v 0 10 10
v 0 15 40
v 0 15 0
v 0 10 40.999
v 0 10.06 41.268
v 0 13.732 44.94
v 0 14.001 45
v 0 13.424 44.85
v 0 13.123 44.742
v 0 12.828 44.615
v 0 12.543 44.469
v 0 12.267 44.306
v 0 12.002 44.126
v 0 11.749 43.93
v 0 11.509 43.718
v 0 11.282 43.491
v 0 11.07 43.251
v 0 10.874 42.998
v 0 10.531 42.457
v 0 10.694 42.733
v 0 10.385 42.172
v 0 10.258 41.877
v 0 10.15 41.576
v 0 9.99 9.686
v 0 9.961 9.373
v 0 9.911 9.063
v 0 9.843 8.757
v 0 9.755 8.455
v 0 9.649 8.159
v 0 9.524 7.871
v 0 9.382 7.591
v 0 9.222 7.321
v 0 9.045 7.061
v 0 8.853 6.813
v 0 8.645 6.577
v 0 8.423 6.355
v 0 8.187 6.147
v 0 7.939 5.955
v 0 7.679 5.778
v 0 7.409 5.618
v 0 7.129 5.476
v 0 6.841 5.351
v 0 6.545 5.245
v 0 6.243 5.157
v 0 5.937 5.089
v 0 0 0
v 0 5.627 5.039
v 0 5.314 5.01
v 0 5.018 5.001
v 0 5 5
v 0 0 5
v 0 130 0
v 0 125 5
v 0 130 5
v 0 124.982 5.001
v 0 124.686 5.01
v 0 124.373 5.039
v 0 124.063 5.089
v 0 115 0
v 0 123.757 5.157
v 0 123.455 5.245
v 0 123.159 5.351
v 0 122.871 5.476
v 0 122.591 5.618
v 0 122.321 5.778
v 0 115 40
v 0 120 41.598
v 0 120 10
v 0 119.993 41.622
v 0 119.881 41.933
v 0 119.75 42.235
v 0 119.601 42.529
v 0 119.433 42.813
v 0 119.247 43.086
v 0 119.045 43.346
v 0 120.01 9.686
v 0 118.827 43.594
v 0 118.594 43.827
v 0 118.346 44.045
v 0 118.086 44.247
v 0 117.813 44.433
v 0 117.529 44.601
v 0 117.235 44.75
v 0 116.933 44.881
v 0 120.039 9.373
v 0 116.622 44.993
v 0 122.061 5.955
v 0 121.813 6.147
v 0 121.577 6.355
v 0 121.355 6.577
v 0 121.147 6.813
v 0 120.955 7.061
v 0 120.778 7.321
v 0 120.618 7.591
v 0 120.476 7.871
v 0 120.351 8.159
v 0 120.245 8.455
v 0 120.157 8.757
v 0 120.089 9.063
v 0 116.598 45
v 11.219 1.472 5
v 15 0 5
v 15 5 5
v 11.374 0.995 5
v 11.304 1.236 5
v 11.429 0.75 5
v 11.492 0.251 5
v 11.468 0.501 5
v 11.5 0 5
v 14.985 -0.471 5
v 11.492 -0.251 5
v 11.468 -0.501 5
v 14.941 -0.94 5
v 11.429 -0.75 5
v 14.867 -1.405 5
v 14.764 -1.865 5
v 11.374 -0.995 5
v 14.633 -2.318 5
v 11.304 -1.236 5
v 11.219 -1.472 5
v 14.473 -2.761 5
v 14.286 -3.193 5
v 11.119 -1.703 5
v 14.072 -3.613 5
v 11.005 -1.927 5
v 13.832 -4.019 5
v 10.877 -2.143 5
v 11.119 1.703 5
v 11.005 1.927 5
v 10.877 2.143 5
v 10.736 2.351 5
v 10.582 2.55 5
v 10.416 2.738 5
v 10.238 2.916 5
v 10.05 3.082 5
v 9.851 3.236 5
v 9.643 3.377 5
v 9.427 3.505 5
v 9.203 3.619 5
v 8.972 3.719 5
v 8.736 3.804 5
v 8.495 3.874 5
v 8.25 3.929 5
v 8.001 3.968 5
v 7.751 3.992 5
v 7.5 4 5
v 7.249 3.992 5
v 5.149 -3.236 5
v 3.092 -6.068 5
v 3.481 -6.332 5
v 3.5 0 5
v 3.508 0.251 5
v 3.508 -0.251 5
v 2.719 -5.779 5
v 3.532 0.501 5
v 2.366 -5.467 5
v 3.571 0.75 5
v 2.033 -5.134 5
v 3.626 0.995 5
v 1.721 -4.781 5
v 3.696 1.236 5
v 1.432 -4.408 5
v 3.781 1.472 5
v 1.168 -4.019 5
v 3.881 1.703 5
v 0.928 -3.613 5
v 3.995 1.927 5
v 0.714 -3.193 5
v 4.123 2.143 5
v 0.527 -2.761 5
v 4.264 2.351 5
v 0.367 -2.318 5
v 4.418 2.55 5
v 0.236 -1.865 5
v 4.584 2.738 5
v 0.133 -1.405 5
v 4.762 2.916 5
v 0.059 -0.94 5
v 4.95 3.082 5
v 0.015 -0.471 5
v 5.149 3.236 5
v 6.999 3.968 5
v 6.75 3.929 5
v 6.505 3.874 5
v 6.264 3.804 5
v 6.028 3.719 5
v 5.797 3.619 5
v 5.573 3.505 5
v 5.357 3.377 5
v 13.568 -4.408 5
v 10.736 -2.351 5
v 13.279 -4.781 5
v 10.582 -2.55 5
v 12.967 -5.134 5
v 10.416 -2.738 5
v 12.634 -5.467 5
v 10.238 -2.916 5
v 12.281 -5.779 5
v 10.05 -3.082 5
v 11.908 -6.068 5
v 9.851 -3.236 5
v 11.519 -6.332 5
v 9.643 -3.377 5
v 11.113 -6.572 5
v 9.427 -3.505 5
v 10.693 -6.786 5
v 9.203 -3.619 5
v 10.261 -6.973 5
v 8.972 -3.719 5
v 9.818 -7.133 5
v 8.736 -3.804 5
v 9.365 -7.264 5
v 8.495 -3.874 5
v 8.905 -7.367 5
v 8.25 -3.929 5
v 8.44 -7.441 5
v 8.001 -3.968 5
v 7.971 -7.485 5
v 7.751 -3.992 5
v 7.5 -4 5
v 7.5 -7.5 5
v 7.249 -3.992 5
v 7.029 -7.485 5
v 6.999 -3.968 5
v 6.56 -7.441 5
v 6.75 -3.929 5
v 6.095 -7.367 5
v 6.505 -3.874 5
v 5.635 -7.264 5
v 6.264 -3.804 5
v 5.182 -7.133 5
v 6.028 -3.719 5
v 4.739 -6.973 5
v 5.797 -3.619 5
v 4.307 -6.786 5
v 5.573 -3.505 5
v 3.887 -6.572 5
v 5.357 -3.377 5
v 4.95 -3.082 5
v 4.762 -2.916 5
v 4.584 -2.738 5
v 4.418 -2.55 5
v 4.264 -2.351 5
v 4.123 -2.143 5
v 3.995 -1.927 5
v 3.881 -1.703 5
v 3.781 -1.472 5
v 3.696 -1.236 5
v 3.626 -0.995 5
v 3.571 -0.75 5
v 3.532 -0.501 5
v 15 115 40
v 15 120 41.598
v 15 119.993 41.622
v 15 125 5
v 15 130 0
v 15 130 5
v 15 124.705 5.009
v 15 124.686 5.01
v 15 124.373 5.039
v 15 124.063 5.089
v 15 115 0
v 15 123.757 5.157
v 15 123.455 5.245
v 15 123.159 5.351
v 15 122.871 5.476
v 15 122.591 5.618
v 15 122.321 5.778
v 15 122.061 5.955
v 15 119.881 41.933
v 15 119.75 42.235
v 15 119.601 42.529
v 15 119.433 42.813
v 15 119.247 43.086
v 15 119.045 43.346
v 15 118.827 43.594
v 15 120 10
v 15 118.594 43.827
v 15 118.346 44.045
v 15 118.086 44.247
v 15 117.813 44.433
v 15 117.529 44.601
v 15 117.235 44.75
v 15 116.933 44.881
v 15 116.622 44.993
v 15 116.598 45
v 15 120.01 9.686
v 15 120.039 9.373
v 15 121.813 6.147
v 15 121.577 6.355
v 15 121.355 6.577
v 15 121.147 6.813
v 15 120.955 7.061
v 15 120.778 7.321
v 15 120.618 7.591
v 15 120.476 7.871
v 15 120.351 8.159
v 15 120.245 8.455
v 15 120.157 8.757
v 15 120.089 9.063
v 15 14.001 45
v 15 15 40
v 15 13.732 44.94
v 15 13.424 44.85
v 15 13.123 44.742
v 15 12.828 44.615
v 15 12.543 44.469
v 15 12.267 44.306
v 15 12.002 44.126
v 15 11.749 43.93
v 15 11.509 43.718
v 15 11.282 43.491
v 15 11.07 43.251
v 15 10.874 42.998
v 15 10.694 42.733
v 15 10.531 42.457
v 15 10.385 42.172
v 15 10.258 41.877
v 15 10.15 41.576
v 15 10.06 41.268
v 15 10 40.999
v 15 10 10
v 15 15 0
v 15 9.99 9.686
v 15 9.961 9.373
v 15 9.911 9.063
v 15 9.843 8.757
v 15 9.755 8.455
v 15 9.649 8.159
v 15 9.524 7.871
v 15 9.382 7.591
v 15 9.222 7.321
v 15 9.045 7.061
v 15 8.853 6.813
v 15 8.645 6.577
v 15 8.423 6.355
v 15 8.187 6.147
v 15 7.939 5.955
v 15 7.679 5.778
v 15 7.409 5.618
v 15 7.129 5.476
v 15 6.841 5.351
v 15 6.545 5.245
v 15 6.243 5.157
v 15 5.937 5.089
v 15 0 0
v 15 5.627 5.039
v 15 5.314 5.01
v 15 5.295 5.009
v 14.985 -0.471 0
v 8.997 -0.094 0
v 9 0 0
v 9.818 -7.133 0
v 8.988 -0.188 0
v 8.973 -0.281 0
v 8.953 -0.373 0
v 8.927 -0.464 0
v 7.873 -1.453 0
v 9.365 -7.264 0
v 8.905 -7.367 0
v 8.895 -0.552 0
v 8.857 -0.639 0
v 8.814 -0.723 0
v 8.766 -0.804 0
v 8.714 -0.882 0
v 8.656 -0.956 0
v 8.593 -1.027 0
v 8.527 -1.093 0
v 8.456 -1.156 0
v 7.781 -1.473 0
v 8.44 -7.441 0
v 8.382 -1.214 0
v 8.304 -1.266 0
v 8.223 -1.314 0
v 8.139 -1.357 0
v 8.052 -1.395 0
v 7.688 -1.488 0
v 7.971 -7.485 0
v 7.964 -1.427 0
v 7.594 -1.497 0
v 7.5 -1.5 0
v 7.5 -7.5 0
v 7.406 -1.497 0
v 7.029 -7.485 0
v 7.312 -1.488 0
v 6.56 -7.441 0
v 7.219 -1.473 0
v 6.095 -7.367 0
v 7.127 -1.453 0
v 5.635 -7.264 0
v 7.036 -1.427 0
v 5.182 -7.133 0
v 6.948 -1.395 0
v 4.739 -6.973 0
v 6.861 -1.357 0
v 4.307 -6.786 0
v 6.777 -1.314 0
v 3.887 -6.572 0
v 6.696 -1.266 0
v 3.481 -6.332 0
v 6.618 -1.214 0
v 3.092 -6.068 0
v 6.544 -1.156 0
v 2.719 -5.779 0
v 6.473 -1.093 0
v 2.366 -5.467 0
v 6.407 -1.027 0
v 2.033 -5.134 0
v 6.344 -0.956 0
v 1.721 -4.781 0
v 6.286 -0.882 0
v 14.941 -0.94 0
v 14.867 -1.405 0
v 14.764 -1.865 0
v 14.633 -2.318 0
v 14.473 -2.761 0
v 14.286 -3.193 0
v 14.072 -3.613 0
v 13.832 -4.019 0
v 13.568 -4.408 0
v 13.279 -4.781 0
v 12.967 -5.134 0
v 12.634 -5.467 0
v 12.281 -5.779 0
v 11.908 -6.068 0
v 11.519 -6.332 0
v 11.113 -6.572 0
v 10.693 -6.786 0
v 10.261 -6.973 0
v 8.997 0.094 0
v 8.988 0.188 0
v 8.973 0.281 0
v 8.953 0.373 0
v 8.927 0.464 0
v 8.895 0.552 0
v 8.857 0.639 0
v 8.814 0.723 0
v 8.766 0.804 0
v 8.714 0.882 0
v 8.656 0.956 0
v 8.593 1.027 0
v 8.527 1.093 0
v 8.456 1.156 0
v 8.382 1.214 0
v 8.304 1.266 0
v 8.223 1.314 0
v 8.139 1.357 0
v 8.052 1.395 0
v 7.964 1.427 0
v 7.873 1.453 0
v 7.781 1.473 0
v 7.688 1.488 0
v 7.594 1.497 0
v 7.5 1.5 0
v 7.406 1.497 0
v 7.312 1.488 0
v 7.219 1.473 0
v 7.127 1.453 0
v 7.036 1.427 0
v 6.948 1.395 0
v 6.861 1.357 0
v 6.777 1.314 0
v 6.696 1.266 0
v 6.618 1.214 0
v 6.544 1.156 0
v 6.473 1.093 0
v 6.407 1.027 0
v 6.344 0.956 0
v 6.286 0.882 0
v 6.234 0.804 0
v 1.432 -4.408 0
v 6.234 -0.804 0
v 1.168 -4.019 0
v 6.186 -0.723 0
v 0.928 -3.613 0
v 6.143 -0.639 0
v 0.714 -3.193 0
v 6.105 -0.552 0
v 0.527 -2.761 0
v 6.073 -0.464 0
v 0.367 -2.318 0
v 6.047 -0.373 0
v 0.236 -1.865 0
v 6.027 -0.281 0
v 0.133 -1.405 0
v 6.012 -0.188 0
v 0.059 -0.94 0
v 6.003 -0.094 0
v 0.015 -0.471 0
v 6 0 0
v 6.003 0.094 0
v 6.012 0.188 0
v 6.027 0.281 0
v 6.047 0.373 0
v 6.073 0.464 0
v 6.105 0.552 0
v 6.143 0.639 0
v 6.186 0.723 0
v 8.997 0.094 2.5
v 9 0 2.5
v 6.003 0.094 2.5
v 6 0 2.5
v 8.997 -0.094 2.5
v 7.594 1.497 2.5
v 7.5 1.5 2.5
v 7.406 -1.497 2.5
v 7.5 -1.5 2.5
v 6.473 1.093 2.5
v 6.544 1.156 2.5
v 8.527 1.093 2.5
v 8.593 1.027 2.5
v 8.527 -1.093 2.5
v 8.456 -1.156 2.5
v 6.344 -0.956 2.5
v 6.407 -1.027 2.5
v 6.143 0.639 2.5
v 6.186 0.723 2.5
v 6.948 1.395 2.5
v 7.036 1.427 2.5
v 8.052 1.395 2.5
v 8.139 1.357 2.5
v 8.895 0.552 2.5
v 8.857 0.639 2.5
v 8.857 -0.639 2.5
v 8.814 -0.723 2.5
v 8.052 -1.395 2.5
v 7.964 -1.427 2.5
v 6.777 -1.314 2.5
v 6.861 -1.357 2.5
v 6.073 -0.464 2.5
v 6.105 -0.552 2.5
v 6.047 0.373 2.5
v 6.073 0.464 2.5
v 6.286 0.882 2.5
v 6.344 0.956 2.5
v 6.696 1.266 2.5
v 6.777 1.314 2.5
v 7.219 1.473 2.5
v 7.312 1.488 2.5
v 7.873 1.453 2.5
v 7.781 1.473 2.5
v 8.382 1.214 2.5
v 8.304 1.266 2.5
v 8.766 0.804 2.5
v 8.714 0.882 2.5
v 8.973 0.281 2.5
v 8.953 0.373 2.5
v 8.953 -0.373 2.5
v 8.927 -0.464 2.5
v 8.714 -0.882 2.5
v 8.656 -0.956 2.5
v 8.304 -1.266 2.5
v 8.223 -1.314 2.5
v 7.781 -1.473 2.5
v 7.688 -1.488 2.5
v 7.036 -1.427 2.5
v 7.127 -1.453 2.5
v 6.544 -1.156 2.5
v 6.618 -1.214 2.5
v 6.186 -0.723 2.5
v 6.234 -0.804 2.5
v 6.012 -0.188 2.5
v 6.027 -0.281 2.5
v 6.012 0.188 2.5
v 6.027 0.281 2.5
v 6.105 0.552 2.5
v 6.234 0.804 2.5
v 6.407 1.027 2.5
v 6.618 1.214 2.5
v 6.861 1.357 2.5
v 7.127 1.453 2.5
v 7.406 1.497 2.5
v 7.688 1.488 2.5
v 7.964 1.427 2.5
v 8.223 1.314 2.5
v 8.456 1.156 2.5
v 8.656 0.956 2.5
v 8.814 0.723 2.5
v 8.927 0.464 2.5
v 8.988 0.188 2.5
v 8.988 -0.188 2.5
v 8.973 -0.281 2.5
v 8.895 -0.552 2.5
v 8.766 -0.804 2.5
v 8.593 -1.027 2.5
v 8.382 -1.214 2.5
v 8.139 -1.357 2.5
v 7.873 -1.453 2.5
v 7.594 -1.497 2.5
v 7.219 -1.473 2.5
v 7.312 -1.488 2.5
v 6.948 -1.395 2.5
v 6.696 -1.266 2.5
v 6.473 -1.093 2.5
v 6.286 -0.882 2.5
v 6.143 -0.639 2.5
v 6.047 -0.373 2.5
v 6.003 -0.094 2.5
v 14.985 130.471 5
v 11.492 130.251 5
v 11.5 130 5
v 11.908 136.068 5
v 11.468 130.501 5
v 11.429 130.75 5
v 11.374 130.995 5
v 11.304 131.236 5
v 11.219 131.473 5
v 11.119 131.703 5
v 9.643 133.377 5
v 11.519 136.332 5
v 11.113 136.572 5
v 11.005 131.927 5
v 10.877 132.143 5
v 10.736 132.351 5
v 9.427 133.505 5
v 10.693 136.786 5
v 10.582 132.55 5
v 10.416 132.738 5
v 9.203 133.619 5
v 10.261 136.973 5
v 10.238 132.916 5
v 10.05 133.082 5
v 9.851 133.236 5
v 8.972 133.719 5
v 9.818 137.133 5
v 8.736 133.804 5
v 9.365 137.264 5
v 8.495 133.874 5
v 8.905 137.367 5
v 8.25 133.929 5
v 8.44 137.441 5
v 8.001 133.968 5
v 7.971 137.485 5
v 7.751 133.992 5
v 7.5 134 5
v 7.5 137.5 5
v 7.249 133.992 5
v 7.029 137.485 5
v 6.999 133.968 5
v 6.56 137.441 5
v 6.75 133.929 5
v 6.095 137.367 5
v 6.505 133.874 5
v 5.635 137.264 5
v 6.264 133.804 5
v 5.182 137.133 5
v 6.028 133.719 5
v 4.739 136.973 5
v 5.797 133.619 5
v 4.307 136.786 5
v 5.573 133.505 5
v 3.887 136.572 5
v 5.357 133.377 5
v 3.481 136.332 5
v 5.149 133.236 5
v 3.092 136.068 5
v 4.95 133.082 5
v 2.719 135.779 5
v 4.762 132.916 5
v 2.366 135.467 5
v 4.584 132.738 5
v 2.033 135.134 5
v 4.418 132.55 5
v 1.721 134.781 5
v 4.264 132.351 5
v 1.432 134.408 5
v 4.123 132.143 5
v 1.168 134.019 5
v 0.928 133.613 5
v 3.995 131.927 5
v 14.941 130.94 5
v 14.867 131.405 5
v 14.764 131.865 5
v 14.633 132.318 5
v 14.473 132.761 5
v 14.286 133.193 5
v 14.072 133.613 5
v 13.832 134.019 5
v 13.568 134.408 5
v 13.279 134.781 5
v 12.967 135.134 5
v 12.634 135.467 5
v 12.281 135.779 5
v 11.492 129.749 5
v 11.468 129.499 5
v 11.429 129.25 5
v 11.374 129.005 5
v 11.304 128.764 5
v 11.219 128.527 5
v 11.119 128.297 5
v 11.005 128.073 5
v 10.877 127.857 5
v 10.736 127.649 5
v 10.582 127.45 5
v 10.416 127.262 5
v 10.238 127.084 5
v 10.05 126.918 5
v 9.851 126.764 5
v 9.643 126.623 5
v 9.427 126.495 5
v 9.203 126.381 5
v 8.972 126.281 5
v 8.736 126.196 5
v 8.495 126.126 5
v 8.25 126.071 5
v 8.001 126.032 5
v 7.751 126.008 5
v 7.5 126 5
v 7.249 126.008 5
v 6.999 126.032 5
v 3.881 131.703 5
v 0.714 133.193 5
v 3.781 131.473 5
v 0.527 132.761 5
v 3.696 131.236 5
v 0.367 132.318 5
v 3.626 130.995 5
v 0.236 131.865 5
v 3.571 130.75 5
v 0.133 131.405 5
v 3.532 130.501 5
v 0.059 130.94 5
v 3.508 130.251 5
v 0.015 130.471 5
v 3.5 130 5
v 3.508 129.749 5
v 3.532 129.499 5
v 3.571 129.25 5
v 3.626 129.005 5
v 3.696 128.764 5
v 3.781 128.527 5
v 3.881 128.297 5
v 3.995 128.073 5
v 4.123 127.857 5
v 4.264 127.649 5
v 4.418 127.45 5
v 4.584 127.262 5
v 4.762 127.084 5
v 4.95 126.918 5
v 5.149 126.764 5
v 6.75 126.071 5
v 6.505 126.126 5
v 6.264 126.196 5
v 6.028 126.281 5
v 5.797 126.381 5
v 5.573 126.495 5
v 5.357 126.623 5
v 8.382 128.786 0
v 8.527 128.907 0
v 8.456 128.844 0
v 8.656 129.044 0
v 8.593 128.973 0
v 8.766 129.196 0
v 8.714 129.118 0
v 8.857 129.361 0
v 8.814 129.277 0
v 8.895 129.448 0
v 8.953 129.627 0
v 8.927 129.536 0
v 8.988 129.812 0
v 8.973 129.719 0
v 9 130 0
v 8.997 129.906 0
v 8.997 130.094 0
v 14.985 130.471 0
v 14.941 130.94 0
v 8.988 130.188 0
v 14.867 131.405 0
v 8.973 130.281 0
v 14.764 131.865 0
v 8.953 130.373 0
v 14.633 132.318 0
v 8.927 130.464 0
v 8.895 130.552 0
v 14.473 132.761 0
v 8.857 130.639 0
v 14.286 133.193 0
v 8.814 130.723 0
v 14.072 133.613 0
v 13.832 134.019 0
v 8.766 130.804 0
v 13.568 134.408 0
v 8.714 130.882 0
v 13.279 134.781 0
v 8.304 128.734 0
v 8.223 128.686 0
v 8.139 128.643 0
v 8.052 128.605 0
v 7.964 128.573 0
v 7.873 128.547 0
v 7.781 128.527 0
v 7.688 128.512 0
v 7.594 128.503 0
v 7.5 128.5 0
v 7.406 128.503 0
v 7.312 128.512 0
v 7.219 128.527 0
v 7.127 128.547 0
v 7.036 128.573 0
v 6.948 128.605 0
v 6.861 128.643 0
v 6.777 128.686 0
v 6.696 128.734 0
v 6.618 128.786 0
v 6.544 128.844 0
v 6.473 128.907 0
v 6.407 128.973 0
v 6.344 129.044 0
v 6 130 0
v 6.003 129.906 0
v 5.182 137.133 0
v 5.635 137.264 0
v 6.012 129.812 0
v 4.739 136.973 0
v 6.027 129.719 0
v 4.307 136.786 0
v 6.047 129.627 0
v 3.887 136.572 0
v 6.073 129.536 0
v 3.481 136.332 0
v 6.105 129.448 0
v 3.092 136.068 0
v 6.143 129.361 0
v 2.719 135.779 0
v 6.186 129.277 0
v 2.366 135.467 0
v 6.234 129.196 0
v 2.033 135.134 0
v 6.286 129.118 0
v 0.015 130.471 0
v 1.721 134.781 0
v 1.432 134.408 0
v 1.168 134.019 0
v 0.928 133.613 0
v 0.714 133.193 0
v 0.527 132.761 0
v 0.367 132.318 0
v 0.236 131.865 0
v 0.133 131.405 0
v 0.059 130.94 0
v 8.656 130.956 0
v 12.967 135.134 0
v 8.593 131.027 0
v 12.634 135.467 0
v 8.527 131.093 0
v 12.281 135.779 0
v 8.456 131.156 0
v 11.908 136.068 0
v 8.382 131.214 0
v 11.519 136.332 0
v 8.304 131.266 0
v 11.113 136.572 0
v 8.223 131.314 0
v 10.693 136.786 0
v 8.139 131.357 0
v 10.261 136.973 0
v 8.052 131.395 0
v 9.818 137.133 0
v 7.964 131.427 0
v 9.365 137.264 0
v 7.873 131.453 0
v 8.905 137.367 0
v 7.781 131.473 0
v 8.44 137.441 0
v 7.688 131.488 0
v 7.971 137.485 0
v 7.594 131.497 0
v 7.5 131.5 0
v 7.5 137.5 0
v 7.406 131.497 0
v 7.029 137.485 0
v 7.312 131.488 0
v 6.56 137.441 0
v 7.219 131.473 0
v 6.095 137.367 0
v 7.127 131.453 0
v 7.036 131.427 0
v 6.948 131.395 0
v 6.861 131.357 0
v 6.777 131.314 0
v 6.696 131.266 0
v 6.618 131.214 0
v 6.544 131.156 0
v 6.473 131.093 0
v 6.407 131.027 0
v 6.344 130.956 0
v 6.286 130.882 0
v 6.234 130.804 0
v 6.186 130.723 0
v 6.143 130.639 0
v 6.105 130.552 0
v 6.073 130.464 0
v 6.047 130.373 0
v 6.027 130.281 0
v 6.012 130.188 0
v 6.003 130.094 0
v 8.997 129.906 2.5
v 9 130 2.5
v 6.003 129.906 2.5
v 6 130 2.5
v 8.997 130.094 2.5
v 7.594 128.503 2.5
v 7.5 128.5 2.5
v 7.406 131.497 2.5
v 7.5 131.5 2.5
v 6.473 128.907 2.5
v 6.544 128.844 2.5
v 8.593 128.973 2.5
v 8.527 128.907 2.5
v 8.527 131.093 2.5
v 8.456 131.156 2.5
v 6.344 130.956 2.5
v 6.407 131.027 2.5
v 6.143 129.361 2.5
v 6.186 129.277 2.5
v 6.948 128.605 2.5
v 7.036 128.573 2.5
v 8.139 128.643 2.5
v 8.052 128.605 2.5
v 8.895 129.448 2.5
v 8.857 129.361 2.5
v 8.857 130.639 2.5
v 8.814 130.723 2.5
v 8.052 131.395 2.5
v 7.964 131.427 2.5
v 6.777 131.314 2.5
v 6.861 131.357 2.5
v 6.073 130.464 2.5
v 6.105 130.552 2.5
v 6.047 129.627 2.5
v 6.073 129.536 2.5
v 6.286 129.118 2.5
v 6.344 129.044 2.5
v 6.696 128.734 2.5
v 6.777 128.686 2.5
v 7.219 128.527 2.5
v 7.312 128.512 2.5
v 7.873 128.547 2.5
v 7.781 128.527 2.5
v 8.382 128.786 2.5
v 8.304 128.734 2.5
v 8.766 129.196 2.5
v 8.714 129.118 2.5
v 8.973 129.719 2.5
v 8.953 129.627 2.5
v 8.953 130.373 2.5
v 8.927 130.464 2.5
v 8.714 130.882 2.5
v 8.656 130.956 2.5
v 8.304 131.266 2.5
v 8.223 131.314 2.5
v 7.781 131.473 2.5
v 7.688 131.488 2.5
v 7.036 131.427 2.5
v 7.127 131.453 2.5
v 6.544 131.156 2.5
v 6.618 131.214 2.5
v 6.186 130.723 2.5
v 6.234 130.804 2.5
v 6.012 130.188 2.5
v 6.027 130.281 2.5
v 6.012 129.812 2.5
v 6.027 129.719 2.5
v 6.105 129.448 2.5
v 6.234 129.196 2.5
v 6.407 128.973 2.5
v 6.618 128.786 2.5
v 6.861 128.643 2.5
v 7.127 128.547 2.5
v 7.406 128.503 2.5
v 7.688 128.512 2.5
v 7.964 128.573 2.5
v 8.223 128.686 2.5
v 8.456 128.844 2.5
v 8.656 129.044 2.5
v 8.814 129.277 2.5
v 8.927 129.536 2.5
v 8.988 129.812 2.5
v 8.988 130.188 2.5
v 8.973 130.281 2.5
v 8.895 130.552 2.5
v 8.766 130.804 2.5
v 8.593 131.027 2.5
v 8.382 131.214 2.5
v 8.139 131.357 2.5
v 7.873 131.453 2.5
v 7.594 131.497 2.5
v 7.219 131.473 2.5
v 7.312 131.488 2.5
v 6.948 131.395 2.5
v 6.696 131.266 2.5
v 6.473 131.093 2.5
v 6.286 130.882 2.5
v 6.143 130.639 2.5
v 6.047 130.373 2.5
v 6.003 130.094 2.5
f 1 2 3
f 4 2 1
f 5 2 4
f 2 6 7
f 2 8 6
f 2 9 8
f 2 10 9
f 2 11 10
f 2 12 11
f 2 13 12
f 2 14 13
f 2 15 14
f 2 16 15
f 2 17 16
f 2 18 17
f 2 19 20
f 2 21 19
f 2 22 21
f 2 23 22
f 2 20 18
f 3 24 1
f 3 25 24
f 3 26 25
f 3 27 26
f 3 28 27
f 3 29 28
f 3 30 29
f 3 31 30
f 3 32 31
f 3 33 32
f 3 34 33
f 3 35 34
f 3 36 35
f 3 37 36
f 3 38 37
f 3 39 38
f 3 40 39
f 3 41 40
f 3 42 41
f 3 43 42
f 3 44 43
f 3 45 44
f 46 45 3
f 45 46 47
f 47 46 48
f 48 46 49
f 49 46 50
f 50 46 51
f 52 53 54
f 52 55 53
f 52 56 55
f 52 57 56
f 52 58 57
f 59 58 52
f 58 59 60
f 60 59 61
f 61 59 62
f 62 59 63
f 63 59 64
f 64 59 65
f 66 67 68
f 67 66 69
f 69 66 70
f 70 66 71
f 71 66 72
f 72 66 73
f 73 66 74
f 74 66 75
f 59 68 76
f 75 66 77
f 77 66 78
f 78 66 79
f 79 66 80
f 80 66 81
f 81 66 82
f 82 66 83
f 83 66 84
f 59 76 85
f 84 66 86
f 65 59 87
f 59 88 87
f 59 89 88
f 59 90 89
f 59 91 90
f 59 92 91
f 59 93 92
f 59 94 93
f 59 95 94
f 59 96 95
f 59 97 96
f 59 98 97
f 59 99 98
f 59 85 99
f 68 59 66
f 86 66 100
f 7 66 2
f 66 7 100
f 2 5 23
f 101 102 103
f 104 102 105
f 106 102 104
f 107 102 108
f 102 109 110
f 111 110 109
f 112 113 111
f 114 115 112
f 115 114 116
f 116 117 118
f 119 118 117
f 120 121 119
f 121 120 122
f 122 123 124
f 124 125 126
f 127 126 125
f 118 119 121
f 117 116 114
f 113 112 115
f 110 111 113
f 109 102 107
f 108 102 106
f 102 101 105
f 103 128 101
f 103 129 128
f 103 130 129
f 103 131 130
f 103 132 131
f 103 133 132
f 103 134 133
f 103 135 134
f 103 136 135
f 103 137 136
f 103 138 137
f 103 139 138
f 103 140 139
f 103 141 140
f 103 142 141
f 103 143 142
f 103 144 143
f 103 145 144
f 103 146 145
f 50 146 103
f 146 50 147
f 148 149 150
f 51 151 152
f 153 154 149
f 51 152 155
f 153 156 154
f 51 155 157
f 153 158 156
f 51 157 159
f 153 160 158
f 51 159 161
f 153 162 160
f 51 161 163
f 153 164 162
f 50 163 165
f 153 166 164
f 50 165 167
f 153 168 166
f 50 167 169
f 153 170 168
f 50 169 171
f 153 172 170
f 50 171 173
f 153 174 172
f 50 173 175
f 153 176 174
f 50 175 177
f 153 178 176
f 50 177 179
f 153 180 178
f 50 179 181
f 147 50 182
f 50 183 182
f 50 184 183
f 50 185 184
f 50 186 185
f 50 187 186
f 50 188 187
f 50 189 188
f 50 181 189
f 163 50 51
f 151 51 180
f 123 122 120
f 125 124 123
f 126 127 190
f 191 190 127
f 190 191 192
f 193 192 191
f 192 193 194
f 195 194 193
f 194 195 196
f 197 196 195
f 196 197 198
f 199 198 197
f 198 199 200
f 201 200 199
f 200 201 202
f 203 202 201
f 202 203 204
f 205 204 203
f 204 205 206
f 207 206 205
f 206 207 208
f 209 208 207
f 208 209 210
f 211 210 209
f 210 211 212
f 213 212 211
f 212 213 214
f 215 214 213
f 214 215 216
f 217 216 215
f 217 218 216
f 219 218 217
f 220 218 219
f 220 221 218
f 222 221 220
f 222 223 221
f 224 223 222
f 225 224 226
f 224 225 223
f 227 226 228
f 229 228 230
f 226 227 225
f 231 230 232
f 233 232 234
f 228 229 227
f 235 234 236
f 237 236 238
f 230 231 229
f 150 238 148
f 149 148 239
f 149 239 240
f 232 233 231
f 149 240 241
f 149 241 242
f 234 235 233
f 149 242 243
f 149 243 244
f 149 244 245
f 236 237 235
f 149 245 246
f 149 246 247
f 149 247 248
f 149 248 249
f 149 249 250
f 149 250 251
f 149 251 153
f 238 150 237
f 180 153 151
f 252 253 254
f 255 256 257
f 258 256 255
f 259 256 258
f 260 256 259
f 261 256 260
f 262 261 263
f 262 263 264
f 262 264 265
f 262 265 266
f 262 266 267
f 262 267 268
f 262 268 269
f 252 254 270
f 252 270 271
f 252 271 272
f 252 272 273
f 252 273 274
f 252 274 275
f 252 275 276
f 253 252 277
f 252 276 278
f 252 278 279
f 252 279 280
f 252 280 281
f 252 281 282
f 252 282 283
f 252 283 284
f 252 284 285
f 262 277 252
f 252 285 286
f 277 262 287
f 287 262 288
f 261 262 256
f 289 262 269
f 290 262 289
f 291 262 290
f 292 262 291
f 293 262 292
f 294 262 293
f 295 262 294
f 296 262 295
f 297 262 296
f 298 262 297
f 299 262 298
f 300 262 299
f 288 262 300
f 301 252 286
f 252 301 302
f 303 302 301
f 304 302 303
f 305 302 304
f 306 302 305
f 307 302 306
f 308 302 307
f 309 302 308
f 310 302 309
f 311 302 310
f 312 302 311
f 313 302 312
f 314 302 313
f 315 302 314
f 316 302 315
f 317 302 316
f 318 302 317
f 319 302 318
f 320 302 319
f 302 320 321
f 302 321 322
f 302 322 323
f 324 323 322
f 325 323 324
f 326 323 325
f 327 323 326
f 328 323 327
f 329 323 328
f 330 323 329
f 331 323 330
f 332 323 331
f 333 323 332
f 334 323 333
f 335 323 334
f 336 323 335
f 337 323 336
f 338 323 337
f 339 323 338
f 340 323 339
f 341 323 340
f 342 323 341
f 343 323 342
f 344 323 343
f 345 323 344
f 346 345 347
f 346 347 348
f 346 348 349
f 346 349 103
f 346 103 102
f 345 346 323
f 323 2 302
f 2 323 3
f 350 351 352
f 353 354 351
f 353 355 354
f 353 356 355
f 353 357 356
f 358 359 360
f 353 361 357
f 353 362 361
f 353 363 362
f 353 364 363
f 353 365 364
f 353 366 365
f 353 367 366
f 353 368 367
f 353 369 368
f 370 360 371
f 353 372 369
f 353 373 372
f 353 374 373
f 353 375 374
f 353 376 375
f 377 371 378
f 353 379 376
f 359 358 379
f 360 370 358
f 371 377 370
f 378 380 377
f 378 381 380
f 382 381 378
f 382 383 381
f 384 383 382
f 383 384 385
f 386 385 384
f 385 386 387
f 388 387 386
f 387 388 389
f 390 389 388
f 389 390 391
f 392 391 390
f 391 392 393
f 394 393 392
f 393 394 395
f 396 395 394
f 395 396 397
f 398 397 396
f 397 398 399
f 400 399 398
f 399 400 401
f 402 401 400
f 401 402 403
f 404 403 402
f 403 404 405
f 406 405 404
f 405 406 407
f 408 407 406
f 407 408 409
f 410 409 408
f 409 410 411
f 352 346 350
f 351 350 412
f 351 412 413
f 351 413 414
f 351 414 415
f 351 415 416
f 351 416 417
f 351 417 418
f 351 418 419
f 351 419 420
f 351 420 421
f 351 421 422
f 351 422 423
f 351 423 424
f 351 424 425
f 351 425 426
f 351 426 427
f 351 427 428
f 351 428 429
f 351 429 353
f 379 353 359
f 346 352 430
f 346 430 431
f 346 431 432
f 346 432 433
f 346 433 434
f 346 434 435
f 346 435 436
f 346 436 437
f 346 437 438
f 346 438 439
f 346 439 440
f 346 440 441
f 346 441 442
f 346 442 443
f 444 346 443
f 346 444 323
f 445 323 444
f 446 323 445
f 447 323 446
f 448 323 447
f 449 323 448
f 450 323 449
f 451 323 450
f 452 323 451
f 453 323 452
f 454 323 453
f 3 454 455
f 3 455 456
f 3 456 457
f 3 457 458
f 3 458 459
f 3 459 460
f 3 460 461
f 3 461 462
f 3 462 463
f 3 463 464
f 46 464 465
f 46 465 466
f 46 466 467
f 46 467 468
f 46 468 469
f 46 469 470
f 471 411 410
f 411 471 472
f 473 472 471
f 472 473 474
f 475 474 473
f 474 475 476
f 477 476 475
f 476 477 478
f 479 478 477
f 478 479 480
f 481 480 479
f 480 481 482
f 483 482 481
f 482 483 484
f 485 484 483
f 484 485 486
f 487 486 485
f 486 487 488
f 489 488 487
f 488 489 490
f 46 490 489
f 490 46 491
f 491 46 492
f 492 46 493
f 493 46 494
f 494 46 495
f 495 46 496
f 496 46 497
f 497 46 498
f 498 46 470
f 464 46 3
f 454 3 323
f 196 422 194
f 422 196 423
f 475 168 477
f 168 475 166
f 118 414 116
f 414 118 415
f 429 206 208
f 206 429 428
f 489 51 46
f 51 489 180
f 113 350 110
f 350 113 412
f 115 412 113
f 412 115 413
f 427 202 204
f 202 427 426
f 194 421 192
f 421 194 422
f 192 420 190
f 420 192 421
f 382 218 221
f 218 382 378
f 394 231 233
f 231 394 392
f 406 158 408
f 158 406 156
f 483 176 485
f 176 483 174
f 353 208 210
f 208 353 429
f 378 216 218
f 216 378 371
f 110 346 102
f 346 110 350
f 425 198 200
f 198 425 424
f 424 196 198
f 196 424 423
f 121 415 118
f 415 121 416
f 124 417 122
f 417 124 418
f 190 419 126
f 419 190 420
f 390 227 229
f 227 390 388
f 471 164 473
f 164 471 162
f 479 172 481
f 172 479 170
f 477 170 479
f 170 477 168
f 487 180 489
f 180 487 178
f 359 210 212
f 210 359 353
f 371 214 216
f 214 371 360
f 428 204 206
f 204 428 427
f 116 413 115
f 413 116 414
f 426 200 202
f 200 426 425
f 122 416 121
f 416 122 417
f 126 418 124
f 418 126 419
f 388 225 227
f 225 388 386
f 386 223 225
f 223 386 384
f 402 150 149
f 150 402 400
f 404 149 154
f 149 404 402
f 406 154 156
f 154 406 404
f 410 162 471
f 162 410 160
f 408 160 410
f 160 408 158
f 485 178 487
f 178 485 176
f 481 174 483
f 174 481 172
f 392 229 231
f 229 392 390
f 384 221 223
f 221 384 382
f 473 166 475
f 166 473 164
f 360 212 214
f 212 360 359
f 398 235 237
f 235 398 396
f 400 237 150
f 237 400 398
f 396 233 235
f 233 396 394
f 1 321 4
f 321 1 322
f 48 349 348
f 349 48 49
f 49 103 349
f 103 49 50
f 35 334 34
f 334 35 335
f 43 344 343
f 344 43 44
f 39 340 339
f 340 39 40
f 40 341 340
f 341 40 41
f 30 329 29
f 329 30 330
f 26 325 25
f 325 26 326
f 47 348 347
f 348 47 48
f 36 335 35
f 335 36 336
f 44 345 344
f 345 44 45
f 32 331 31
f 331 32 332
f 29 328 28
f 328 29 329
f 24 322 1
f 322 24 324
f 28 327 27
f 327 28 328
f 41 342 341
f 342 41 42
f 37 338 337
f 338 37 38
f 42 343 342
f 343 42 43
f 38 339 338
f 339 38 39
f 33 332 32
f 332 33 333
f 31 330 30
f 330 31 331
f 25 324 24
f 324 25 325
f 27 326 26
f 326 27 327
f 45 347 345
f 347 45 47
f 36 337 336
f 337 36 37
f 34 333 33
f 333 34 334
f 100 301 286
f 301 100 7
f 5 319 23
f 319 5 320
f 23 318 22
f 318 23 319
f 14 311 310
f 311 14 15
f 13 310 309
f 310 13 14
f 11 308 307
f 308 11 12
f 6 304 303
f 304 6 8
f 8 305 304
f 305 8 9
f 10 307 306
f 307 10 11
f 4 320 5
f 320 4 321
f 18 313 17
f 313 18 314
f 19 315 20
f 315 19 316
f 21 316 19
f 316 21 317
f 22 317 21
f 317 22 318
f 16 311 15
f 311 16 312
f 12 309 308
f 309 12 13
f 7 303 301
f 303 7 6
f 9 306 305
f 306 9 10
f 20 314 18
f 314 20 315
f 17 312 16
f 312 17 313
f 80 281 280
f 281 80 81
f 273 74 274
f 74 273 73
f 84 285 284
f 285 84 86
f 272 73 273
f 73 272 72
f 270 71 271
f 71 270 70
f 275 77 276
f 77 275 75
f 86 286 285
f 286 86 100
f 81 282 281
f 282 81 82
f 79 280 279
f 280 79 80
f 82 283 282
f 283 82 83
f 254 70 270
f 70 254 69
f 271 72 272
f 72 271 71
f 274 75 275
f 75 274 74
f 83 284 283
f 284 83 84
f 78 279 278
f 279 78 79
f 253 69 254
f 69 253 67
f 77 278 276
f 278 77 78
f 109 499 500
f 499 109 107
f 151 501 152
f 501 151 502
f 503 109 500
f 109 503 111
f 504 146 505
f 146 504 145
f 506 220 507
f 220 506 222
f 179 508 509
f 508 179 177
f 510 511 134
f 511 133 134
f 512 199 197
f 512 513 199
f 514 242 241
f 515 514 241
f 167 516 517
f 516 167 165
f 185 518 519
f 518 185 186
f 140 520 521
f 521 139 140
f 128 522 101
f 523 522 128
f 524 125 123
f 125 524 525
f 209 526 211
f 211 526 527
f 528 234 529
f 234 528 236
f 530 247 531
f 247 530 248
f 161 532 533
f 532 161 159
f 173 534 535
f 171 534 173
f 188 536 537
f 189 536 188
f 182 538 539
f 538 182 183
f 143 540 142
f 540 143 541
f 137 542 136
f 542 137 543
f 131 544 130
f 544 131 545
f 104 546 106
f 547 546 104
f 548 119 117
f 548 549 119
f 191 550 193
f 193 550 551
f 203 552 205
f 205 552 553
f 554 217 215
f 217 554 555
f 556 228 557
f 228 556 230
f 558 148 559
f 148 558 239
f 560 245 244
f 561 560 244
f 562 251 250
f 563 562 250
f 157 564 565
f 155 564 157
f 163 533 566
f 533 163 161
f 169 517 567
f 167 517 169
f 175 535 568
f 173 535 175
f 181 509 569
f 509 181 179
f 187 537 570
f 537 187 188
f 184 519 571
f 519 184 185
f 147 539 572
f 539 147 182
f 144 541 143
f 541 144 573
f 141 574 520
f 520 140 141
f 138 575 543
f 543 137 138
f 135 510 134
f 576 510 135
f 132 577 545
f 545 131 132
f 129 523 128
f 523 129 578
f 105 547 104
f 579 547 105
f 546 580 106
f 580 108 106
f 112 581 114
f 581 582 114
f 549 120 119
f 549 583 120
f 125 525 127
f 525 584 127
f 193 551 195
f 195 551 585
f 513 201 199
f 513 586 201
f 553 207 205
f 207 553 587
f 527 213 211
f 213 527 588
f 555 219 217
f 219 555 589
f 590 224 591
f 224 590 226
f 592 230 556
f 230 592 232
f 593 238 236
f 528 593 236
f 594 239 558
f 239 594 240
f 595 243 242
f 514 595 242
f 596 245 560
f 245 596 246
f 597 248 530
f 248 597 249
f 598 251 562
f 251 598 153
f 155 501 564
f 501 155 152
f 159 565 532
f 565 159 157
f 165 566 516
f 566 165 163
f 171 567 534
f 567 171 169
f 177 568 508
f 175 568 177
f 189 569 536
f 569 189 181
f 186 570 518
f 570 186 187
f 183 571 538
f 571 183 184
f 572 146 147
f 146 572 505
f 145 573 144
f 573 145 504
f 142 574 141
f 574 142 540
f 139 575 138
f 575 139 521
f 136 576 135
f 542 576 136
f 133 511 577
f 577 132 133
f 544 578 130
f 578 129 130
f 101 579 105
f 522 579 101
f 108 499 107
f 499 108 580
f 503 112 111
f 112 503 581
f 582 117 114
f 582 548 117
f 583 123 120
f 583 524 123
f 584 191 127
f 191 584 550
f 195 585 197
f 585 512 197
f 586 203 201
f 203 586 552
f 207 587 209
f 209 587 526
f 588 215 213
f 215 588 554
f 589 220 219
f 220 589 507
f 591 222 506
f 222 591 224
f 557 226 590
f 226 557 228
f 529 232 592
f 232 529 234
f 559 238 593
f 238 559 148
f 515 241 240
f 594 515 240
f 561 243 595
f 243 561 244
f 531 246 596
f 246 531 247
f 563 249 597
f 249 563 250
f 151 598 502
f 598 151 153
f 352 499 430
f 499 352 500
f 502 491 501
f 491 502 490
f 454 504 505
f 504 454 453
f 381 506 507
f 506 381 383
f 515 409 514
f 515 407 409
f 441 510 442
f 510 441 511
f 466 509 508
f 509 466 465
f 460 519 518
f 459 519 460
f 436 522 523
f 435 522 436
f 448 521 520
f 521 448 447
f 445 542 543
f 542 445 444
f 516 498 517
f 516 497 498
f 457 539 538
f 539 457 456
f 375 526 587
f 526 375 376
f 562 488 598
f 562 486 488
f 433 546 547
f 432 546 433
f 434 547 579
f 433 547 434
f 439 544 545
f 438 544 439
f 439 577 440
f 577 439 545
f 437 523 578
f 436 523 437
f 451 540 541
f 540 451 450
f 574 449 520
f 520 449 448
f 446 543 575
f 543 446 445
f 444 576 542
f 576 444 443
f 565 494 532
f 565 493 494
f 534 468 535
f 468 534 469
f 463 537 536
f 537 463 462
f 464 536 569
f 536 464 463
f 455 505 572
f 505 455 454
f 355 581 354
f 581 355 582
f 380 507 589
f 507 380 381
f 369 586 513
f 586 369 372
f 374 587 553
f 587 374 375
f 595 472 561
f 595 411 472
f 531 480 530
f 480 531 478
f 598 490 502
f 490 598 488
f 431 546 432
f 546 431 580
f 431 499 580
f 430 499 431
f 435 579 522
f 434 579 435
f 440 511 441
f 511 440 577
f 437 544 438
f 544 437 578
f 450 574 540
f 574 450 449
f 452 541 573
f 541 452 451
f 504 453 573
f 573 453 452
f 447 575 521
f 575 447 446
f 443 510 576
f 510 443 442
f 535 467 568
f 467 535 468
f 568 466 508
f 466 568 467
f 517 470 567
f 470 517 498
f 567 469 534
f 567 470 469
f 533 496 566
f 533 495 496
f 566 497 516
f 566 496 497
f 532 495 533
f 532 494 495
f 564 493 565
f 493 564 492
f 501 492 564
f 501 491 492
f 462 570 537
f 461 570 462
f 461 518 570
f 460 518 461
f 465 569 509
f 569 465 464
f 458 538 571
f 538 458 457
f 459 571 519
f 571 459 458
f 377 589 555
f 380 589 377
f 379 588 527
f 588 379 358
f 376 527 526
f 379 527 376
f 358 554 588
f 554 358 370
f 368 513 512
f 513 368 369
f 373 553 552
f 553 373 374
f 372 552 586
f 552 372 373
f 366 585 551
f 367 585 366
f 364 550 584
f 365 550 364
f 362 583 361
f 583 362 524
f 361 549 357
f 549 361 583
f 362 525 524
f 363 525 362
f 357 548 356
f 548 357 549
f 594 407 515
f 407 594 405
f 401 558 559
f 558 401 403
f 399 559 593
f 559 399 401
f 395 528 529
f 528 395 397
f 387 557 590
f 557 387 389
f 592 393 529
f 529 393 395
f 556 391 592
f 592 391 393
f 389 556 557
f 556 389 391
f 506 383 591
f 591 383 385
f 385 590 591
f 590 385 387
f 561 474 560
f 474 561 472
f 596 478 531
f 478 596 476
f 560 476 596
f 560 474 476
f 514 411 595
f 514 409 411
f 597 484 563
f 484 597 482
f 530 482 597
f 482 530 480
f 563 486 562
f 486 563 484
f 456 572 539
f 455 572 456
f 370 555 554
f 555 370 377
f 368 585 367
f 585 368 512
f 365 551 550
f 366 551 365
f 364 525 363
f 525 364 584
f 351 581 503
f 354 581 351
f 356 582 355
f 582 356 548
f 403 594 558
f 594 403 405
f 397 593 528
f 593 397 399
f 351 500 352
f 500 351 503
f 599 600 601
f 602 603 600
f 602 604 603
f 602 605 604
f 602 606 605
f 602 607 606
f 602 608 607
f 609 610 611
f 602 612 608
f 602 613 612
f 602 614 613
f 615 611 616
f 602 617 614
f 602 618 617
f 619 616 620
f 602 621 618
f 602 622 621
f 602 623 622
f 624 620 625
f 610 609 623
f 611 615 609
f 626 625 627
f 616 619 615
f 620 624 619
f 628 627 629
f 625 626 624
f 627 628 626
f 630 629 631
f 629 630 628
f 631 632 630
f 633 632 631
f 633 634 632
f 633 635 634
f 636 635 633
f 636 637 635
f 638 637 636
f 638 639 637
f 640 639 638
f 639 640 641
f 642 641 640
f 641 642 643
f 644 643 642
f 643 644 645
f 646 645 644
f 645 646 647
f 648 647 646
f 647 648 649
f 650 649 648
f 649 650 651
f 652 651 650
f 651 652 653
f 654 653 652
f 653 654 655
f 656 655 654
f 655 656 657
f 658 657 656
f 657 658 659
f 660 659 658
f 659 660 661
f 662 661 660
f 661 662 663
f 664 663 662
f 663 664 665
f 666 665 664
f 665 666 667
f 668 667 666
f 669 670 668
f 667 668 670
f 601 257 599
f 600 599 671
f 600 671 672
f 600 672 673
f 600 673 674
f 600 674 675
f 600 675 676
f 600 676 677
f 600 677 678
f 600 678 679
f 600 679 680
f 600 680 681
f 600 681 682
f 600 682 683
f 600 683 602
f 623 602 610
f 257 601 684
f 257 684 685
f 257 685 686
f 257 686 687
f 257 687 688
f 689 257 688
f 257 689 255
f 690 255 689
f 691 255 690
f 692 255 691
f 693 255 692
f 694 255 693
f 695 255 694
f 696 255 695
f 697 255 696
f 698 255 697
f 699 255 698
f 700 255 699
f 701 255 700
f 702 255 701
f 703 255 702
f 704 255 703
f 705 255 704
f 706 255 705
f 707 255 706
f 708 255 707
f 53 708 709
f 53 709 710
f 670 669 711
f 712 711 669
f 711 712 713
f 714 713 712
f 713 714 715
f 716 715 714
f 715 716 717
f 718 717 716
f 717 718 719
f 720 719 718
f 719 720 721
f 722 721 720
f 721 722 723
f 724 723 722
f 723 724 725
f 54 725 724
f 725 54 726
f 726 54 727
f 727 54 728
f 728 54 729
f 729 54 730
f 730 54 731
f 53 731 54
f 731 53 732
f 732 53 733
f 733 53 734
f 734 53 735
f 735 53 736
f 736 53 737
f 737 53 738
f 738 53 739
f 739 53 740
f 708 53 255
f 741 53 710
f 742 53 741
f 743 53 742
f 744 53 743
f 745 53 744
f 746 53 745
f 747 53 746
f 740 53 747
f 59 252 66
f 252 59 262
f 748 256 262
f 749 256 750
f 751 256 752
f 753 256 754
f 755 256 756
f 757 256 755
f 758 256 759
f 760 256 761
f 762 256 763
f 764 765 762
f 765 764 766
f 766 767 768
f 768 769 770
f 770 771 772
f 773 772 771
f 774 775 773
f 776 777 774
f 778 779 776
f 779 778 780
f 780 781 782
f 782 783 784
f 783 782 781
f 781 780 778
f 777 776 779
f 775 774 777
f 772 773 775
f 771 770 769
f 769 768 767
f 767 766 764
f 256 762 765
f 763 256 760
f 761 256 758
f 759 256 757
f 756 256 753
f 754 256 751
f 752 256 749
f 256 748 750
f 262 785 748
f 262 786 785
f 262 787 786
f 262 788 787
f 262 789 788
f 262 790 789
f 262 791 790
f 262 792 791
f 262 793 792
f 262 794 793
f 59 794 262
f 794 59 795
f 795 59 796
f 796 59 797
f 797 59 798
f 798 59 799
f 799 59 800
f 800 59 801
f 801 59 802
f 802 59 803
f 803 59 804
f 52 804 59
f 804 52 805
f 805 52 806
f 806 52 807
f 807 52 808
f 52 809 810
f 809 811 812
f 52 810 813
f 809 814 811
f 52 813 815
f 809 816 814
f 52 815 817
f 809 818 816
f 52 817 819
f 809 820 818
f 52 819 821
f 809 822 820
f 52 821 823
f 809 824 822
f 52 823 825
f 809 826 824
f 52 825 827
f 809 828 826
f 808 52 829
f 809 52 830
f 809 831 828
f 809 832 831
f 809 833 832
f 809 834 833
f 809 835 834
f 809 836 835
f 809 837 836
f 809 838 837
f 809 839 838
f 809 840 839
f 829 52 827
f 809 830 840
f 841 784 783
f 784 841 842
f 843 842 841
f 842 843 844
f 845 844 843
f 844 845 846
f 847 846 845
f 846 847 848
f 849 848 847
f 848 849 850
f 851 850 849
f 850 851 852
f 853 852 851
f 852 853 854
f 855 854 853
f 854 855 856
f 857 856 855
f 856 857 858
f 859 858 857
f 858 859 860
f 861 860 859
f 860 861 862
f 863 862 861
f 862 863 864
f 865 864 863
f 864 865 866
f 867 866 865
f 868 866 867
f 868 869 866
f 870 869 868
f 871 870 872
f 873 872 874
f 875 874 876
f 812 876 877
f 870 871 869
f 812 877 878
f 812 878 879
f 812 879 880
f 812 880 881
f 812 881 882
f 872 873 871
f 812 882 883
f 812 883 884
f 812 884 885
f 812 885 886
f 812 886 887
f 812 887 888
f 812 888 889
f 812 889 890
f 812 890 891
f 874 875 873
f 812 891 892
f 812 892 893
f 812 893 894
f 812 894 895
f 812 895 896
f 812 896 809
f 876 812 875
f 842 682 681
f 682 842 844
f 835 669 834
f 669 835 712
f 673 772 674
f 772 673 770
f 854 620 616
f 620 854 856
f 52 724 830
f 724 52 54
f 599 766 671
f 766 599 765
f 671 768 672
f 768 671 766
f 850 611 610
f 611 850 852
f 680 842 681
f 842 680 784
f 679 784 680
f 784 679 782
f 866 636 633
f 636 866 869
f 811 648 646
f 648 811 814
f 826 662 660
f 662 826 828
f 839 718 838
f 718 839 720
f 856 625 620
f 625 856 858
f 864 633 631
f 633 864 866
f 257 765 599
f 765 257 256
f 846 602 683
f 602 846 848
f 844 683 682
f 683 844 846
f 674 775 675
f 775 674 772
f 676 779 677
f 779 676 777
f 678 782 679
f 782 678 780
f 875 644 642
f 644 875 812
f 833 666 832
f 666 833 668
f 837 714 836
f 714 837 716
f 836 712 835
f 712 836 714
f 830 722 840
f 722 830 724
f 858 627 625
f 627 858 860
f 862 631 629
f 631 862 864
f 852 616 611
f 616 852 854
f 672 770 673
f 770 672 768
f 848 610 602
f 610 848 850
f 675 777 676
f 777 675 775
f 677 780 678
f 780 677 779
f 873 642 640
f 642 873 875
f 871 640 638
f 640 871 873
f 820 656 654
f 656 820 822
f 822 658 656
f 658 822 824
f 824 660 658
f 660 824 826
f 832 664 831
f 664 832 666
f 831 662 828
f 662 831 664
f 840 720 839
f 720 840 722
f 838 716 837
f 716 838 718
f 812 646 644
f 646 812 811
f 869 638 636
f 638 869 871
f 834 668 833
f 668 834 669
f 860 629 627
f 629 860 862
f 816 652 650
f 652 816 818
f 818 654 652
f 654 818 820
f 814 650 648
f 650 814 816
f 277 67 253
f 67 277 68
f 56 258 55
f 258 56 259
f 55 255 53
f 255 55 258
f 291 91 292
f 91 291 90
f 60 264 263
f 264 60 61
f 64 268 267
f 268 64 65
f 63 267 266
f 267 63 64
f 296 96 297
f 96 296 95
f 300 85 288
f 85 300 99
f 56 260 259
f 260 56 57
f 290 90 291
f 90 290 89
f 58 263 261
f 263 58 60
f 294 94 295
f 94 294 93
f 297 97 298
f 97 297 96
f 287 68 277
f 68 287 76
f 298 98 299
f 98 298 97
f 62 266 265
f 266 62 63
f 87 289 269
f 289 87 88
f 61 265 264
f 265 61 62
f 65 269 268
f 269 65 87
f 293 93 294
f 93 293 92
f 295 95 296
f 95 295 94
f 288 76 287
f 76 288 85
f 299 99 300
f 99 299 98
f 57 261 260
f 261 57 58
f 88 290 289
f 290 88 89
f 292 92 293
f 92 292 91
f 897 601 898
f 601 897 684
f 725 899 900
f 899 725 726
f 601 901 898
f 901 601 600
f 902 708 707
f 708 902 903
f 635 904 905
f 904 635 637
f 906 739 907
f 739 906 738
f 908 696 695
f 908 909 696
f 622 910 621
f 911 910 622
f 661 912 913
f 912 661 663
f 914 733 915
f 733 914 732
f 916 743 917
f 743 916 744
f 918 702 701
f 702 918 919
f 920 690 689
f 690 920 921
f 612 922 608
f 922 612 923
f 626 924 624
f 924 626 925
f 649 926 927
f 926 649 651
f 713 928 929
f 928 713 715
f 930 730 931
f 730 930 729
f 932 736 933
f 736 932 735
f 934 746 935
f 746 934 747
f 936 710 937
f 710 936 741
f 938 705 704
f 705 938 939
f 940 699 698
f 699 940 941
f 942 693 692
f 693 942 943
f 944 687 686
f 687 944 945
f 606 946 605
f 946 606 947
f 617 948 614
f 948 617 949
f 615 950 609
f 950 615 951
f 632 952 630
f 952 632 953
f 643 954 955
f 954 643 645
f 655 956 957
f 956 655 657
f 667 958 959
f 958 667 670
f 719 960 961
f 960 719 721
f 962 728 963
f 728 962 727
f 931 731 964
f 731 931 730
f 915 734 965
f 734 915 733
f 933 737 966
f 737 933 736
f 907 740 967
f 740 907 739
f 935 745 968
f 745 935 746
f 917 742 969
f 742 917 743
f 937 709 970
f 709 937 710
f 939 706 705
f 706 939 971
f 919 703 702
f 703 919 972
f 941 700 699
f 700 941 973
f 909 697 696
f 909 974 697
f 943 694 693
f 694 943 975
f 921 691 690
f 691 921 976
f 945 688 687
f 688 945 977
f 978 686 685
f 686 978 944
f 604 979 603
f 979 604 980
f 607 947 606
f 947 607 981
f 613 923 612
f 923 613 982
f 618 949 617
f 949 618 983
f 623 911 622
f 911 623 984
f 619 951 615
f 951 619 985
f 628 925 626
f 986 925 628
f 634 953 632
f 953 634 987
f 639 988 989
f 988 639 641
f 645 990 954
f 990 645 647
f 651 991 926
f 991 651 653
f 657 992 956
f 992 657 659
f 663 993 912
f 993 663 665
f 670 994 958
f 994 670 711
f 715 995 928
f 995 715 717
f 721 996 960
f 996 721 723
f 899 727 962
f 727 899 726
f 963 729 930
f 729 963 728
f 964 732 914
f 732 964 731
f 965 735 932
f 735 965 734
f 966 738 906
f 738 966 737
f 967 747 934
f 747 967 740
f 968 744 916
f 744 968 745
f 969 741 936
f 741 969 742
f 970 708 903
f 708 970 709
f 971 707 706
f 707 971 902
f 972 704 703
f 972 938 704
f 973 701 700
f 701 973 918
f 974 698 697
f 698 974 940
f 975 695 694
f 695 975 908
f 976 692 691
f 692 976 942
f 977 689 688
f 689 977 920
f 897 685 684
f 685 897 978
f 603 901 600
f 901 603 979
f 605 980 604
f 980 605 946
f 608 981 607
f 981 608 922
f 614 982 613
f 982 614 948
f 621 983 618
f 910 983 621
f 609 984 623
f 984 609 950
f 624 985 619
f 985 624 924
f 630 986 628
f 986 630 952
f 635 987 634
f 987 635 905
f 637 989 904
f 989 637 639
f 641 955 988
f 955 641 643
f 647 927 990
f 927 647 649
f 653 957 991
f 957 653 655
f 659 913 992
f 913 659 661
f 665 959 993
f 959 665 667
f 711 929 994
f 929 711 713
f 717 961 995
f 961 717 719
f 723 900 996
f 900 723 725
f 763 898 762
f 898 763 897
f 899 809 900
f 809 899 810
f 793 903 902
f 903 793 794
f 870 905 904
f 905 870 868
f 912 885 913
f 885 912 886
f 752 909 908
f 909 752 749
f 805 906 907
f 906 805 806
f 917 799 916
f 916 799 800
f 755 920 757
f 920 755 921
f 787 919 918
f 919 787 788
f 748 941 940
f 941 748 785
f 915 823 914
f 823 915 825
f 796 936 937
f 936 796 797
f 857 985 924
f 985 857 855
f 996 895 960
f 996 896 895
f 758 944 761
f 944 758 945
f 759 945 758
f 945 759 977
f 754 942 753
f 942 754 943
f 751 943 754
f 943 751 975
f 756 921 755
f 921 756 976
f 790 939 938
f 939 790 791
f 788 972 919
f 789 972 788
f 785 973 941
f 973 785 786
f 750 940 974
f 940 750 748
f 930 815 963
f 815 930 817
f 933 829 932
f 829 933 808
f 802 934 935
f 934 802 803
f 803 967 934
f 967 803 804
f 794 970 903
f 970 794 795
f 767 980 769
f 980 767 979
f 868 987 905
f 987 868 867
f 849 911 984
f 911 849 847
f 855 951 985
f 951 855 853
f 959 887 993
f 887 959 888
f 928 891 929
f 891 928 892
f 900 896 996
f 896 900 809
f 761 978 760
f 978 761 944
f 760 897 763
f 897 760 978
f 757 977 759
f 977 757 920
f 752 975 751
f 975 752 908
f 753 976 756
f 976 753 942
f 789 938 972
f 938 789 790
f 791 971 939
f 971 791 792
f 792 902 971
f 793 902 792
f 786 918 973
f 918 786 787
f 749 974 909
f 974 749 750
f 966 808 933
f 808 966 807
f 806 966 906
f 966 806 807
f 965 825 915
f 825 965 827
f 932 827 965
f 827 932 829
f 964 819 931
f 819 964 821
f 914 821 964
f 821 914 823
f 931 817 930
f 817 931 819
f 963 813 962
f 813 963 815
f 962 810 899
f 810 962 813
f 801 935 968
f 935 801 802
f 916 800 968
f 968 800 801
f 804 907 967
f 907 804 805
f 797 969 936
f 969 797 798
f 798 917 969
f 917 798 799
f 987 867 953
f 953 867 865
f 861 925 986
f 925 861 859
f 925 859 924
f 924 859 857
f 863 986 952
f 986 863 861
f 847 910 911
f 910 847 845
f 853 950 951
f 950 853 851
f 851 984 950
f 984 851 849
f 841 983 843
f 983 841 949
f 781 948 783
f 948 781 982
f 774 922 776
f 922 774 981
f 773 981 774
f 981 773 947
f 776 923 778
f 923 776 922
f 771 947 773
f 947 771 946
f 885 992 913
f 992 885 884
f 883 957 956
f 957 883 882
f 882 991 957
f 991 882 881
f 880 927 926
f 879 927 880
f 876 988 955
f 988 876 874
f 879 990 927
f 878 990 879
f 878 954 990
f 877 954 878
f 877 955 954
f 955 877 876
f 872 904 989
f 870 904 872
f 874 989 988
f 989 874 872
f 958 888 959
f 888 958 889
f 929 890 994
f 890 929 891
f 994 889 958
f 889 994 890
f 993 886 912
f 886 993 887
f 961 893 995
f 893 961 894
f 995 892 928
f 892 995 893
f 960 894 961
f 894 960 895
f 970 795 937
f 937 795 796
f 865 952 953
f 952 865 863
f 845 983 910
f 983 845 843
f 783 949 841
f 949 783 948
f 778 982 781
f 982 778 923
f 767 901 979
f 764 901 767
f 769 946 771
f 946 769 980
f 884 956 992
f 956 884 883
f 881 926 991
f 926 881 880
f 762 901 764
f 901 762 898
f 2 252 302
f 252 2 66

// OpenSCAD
module vertical() {
	translate([0,10,0])
		cube([15,5,45]);
	translate([0,5,10])
		fillet(10,15);
}

module fillet(filletsize,width)
{
	difference() {
	translate([0,-filletsize/2,-filletsize/2])
		cube([width,filletsize,filletsize]);
	translate([-1,0,0])
		rotate([0,90,0])
			cylinder(width+2,d=filletsize,$fn=100);
    translate([-1,-filletsize,-filletsize/2])
		cube([width+2,filletsize,filletsize]);
    translate([-1,-filletsize/2,0])
		cube([width+2,filletsize,filletsize]);		
	}
}


module tab() {
difference() {
	union() {
		cube([15,15,5]);
		translate([15/2,0,0])
			cylinder(5,d=15,$fn=100);
		}
    translate([15/2,0,1])			
		countersink(3);
	}
}

module countersink(drillsize)
	union() {
		cylinder(drillsize*3,0,drillsize*3,$fn=100);
		translate([0,0,-5])
		cylinder(10,d=drillsize,$fn=100);
	}
	
module bracket() {
difference() {
	union() {
			tab();
			vertical();
			translate([0,130,0])
				mirror([0,1,0]) {
					union() {
						tab();
						vertical();
					}
			}
			translate([0,10,40])
				cube([15,110,5]);
		}
		translate([16,115,40])
			rotate([0,180,0])
				fillet(10.5,16);
		translate([0,15,40])
			rotate([180,0,0])
				fillet(10.2,16);
	}
}


bracket();
